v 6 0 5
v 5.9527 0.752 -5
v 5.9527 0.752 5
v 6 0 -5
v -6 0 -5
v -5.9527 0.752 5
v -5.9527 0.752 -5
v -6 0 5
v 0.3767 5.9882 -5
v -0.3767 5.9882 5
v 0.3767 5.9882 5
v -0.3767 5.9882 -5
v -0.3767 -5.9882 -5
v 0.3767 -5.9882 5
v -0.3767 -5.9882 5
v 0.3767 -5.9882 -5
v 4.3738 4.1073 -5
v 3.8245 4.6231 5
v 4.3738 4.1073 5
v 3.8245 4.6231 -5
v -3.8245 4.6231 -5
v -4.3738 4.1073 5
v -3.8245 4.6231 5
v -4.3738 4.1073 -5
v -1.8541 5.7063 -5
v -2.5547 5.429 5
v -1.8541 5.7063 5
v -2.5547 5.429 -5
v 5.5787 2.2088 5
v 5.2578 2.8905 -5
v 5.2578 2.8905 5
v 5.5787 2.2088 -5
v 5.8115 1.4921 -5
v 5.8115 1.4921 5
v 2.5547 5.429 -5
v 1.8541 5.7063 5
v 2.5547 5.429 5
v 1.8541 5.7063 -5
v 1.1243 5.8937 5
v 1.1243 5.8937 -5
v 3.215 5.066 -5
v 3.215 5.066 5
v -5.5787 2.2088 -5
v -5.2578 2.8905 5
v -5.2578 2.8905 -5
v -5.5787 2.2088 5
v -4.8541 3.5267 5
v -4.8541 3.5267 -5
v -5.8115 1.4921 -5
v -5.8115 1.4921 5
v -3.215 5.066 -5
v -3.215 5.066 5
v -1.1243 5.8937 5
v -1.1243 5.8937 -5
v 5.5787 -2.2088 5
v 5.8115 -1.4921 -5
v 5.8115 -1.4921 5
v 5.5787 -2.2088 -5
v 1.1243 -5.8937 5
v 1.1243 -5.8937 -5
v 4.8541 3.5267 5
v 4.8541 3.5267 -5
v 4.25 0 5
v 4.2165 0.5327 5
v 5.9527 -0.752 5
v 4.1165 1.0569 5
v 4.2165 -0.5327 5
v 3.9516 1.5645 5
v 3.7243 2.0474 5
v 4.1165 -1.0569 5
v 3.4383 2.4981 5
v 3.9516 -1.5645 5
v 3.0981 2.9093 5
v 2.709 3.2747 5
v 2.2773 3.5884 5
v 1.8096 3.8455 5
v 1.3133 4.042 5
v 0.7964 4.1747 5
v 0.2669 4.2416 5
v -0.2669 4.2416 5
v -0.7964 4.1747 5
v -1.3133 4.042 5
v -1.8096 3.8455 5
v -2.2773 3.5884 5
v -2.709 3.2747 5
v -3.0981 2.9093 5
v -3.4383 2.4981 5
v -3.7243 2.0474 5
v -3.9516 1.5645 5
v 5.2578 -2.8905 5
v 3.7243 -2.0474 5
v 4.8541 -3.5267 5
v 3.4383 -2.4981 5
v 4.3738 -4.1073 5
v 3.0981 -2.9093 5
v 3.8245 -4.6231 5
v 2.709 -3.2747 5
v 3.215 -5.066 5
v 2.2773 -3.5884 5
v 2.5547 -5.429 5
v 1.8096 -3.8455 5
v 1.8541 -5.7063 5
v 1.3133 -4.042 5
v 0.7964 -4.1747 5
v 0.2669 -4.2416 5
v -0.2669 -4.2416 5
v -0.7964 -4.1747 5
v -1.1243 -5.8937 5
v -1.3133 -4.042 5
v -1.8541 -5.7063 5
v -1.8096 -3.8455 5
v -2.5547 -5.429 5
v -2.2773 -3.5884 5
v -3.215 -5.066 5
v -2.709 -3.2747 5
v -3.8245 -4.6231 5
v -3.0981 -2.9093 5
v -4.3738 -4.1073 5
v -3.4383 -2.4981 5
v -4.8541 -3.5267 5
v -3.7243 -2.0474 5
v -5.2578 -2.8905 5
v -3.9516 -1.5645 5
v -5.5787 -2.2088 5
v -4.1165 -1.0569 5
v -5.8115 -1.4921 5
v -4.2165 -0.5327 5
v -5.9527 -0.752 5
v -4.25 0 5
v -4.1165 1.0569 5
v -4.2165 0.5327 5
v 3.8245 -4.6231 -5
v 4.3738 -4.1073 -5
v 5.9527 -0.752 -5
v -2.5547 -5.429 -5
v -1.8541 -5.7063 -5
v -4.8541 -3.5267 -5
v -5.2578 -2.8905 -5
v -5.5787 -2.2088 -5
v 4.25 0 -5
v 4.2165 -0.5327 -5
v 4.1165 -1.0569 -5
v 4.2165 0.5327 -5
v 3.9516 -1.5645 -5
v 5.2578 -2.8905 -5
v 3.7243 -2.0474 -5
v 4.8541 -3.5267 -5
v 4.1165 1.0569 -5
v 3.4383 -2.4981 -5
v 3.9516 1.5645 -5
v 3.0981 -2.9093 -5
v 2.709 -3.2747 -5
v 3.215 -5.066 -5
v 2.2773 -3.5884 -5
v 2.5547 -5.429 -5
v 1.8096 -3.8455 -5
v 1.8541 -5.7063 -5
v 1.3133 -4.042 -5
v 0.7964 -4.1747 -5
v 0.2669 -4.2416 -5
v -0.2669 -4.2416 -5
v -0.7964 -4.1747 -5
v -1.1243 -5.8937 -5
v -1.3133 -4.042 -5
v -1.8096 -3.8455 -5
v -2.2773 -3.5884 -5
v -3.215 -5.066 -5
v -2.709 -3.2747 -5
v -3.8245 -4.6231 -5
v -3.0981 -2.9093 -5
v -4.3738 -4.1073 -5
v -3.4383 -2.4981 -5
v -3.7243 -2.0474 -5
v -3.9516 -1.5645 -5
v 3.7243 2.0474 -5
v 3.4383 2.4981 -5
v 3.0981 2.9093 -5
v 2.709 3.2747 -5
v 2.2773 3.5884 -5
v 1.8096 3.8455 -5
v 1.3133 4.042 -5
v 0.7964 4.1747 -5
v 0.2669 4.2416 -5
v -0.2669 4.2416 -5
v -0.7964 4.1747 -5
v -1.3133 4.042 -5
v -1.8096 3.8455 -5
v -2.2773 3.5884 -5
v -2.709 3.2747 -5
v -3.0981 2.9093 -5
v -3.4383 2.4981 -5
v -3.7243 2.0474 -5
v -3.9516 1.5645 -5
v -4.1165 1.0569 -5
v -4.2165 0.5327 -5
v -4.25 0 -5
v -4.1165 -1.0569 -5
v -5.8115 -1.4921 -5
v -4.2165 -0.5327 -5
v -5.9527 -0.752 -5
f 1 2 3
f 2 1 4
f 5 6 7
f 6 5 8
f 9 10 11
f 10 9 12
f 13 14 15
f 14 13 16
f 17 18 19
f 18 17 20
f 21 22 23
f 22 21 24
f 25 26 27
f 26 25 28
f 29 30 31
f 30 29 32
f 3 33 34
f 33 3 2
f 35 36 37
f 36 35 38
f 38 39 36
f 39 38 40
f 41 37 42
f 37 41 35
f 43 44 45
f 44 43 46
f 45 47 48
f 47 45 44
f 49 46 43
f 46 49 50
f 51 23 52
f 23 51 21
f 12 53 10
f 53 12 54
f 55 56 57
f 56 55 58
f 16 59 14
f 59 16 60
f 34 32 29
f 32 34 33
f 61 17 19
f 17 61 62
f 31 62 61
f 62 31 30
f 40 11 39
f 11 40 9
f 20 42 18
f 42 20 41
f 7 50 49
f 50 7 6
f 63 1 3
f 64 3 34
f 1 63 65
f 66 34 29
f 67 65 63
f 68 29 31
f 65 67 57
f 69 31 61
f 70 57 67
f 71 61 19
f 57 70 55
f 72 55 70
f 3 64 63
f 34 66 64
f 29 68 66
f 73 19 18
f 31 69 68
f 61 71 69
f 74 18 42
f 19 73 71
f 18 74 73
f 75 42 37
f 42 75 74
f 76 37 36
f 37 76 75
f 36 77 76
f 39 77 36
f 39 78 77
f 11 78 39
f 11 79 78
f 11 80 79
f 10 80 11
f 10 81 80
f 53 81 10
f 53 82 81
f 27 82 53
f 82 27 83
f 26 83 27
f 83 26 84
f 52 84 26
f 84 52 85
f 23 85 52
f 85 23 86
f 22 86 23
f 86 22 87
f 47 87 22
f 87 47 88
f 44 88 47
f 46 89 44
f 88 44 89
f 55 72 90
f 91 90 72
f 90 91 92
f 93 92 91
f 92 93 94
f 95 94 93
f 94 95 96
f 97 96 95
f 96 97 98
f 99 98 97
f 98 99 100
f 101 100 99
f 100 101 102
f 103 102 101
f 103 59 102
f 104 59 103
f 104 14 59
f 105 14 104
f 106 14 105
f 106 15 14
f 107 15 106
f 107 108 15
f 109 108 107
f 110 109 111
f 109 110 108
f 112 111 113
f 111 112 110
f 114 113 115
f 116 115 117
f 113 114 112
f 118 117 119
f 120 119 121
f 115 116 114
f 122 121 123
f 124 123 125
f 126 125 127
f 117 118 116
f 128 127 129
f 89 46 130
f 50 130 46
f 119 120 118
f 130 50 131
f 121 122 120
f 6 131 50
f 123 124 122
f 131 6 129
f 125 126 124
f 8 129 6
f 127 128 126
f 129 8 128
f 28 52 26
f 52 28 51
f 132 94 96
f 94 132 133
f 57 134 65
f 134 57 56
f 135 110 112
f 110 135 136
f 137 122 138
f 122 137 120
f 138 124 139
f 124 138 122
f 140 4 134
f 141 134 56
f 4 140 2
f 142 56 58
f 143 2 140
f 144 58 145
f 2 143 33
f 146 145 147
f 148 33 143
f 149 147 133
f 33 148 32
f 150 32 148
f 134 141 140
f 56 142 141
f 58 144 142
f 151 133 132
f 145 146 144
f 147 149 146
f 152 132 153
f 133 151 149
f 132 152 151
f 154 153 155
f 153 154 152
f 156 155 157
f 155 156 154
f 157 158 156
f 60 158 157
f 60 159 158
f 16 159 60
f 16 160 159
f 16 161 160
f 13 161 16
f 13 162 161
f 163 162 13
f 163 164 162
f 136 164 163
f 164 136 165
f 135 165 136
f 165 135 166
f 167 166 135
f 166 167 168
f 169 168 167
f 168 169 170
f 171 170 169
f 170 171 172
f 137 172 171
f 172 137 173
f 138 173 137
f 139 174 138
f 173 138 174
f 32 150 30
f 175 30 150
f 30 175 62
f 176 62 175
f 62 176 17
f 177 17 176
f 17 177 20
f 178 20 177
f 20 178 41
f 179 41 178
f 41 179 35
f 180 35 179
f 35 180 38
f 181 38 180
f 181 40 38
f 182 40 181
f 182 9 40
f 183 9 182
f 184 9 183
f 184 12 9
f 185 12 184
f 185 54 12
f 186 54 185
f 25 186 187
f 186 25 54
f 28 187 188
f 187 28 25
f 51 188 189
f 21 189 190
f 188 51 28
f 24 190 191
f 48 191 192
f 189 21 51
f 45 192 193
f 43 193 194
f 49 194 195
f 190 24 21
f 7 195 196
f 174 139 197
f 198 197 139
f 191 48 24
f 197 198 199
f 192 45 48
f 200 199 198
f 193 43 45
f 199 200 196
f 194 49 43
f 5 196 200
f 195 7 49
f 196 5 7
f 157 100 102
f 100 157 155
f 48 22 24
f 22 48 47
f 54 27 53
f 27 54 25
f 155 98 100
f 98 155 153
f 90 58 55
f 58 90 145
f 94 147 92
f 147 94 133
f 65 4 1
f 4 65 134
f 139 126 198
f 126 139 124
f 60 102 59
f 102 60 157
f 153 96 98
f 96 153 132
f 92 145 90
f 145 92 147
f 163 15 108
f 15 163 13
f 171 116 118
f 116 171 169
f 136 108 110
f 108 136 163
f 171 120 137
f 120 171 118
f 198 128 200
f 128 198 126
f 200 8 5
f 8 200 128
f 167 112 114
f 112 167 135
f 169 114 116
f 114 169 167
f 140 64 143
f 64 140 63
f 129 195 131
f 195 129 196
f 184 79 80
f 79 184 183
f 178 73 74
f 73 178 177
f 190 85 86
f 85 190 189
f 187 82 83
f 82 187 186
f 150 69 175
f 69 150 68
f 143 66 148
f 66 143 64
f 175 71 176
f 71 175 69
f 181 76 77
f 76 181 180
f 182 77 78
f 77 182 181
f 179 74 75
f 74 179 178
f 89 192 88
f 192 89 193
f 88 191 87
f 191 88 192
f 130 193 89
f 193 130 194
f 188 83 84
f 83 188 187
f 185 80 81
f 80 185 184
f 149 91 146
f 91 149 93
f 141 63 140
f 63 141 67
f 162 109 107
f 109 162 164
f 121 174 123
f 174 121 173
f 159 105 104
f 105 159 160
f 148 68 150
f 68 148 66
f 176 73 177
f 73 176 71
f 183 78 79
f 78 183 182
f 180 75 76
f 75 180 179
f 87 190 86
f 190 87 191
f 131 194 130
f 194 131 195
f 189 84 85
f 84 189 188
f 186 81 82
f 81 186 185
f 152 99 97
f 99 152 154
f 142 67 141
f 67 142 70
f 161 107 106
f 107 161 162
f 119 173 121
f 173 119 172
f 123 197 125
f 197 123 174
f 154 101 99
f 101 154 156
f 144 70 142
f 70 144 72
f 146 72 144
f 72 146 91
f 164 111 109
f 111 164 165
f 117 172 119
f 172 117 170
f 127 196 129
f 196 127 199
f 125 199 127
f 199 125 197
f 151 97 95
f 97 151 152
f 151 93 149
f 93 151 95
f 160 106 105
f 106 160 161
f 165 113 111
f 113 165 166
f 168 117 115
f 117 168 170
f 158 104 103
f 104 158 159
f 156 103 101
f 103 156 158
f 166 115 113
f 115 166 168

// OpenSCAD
$fn = 50;


difference() {
	union() {
		translate(v = [0, 0, -5.0000000000]) {
			cylinder(h = 10, r = 6.0000000000);
		}
	}
	union() {
		translate(v = [0, 0, -100.0000000000]) {
			cylinder(h = 200, r = 4.2500000000);
		}
	}
}
